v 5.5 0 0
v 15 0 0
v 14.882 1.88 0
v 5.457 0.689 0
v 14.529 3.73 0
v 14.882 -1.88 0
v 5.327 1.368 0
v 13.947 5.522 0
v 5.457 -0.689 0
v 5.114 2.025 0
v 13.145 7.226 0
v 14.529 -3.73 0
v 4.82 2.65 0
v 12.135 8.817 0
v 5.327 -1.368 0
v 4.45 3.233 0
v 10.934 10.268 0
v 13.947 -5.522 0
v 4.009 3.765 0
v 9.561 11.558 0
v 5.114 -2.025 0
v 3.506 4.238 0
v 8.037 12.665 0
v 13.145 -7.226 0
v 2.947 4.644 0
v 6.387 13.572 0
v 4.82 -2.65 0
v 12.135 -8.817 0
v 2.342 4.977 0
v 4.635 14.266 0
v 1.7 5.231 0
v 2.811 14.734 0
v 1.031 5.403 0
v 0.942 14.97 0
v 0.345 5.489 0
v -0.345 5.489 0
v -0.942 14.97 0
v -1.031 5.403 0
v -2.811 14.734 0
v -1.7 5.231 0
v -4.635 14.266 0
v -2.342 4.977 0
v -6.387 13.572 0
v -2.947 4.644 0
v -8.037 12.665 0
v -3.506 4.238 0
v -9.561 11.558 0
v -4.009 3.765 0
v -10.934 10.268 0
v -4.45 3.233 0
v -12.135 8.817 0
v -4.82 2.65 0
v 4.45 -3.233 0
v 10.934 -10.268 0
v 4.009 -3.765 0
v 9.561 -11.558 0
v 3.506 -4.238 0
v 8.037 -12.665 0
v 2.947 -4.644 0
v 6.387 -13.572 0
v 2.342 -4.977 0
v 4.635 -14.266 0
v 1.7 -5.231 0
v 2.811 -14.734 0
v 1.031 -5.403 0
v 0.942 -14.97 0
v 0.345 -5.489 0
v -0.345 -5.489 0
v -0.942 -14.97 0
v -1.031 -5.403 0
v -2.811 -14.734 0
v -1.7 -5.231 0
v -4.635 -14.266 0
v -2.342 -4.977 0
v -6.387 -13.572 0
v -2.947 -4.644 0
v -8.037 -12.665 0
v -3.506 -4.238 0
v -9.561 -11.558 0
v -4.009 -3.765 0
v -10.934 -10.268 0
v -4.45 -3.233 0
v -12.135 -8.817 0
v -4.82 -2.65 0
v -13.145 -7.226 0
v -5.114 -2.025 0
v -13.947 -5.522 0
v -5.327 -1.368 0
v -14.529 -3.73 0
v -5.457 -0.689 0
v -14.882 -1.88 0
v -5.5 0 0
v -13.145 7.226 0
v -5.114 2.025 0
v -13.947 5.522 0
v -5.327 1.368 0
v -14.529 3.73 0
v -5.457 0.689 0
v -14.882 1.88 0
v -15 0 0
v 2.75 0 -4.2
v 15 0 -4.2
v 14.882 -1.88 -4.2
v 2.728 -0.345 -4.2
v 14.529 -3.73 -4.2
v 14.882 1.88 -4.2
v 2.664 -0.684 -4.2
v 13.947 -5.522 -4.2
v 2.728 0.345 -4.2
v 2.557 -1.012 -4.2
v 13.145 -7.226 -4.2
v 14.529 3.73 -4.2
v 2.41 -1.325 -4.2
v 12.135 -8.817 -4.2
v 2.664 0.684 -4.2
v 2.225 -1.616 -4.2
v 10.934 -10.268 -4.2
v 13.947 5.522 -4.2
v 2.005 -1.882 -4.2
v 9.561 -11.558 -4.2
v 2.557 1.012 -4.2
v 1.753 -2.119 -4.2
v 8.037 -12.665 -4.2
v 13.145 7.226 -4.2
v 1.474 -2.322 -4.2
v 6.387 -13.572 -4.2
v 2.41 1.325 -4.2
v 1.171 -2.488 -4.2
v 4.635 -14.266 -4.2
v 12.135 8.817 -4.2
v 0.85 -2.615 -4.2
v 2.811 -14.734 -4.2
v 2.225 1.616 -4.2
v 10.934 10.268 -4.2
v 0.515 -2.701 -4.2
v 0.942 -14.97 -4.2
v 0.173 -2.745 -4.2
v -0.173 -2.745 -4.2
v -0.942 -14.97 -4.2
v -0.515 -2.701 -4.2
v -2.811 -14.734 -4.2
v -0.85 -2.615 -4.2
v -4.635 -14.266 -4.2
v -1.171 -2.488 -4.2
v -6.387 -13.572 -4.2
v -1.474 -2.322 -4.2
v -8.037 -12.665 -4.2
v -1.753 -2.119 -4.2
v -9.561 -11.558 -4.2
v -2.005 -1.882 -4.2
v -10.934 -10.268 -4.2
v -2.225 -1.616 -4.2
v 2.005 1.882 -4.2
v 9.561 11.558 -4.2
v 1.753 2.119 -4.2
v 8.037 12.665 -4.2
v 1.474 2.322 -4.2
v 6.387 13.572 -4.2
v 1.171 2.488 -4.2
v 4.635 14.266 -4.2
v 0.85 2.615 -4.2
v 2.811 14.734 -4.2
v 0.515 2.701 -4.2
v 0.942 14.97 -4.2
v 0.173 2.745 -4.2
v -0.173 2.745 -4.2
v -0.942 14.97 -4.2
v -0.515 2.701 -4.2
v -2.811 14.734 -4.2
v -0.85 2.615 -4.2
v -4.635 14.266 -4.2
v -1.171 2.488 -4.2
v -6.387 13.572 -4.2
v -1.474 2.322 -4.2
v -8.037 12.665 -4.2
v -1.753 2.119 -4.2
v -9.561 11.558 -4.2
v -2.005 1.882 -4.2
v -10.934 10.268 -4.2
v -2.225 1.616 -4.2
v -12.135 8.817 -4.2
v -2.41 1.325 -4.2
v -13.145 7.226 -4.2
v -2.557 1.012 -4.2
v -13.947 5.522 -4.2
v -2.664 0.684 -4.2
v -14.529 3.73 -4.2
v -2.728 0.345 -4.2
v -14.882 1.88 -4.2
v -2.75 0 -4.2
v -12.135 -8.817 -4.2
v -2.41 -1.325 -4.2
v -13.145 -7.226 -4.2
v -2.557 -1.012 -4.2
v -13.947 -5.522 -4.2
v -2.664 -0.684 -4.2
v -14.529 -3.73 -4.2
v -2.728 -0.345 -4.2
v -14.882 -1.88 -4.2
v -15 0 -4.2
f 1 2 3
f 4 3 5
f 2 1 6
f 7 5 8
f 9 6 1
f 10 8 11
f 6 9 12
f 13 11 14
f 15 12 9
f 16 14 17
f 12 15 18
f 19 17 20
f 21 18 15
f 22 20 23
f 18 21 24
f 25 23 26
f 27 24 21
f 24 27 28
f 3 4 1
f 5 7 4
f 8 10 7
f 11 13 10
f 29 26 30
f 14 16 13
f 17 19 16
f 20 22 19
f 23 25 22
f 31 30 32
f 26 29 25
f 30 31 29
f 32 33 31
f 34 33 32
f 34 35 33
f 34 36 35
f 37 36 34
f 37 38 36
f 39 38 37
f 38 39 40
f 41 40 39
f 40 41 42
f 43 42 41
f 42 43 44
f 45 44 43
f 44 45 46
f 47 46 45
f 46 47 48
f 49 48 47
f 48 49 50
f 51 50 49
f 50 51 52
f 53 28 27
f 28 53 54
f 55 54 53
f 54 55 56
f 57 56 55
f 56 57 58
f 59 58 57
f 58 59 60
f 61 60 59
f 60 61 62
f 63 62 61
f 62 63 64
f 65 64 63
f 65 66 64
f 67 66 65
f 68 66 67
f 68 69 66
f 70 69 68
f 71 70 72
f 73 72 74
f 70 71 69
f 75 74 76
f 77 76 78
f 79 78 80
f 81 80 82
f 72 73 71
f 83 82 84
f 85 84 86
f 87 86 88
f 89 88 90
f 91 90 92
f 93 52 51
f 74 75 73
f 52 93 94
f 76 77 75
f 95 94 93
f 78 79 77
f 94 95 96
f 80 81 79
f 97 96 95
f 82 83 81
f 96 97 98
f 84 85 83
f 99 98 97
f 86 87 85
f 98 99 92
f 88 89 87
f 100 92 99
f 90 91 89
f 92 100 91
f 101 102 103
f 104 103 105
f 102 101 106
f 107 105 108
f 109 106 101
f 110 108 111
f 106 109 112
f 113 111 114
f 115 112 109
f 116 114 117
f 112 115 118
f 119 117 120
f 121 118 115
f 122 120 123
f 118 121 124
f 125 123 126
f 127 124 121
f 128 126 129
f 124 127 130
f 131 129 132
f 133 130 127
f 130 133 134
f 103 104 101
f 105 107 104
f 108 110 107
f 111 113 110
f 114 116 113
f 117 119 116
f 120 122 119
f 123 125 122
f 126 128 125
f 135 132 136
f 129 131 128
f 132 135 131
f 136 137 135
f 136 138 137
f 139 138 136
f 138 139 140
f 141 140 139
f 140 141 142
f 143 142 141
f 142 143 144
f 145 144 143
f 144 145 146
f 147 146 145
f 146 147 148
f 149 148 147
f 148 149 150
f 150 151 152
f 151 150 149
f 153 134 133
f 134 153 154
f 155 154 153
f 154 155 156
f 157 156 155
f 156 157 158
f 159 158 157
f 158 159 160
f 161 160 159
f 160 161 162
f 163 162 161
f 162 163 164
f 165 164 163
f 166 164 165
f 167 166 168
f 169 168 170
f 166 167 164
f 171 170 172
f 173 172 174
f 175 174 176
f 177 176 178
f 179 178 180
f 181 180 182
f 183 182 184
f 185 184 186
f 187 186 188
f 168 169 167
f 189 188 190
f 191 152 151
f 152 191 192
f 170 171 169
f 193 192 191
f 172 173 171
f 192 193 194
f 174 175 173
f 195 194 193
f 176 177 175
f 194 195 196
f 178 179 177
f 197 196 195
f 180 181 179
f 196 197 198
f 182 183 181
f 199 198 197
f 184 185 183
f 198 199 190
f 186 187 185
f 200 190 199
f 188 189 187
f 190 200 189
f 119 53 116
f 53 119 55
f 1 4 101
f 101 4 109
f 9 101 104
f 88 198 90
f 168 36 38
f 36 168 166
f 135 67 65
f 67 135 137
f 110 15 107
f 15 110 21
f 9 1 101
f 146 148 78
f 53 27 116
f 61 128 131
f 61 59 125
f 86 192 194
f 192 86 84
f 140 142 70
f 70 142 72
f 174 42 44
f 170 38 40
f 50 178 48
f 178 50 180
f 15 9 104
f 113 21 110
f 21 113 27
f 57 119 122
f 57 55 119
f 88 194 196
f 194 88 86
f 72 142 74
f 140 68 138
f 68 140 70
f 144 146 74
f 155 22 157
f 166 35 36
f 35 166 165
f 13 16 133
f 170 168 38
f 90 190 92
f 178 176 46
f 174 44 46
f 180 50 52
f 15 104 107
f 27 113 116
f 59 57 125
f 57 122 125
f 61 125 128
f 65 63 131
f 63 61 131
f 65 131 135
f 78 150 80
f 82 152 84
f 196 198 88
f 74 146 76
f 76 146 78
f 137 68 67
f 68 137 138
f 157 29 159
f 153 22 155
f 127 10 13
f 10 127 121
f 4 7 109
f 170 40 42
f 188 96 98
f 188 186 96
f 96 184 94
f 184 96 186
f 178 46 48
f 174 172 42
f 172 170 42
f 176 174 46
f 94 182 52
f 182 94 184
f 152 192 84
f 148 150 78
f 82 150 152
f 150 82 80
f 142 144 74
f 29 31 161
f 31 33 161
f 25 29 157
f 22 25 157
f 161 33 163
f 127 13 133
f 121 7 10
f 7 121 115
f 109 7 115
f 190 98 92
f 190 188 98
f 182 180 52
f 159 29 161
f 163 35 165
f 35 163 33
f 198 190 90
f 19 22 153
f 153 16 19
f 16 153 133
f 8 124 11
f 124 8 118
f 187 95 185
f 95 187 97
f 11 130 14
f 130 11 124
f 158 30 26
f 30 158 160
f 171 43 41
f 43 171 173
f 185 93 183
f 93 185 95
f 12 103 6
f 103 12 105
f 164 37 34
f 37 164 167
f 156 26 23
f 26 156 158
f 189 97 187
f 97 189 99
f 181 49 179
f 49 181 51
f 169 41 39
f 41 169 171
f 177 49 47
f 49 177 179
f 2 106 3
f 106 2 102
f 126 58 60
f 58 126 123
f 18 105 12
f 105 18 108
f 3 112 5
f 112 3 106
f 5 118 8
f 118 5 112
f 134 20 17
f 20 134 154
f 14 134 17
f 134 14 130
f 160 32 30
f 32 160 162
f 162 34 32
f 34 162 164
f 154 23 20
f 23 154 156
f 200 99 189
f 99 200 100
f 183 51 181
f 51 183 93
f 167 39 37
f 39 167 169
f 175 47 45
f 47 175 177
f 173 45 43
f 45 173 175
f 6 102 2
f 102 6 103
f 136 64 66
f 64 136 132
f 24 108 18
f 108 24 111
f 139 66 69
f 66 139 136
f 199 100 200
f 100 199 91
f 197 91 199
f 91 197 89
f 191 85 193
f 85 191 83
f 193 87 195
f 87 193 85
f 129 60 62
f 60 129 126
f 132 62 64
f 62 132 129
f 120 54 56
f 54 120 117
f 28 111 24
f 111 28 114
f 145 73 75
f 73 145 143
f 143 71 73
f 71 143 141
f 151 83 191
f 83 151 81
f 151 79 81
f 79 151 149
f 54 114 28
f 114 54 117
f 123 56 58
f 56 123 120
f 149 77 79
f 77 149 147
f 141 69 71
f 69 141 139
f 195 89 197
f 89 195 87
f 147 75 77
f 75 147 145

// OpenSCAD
$fn = 50;


difference() {
	union() {
		translate(v = [0, 0, -4.2000000000]) {
			cylinder(h = 4.2000000000, r = 15.0000000000);
		}
	}
	union() {
		translate(v = [0, 0, 0]) {
			rotate(a = [0, 0, 0]) {
				difference() {
					union() {
						#translate(v = [0, 0, -4.2000000000]) {
							cylinder(h = 4.2000000000, r = 2.2500000000);
						}
						#translate(v = [0, 0, -4.2000000000]) {
							cylinder(h = 4.2000000000, r1 = 2.7500000000, r2 = 5.5000000000);
						}
						#translate(v = [0, 0, -4.2000000000]) {
							cylinder(h = 4.2000000000, r = 2.7500000000);
						}
						#translate(v = [0, 0, -4.2000000000]) {
							cylinder(h = 4.2000000000, r = 2.2500000000);
						}
					}
					union();
				}
			}
		}
	}
}
